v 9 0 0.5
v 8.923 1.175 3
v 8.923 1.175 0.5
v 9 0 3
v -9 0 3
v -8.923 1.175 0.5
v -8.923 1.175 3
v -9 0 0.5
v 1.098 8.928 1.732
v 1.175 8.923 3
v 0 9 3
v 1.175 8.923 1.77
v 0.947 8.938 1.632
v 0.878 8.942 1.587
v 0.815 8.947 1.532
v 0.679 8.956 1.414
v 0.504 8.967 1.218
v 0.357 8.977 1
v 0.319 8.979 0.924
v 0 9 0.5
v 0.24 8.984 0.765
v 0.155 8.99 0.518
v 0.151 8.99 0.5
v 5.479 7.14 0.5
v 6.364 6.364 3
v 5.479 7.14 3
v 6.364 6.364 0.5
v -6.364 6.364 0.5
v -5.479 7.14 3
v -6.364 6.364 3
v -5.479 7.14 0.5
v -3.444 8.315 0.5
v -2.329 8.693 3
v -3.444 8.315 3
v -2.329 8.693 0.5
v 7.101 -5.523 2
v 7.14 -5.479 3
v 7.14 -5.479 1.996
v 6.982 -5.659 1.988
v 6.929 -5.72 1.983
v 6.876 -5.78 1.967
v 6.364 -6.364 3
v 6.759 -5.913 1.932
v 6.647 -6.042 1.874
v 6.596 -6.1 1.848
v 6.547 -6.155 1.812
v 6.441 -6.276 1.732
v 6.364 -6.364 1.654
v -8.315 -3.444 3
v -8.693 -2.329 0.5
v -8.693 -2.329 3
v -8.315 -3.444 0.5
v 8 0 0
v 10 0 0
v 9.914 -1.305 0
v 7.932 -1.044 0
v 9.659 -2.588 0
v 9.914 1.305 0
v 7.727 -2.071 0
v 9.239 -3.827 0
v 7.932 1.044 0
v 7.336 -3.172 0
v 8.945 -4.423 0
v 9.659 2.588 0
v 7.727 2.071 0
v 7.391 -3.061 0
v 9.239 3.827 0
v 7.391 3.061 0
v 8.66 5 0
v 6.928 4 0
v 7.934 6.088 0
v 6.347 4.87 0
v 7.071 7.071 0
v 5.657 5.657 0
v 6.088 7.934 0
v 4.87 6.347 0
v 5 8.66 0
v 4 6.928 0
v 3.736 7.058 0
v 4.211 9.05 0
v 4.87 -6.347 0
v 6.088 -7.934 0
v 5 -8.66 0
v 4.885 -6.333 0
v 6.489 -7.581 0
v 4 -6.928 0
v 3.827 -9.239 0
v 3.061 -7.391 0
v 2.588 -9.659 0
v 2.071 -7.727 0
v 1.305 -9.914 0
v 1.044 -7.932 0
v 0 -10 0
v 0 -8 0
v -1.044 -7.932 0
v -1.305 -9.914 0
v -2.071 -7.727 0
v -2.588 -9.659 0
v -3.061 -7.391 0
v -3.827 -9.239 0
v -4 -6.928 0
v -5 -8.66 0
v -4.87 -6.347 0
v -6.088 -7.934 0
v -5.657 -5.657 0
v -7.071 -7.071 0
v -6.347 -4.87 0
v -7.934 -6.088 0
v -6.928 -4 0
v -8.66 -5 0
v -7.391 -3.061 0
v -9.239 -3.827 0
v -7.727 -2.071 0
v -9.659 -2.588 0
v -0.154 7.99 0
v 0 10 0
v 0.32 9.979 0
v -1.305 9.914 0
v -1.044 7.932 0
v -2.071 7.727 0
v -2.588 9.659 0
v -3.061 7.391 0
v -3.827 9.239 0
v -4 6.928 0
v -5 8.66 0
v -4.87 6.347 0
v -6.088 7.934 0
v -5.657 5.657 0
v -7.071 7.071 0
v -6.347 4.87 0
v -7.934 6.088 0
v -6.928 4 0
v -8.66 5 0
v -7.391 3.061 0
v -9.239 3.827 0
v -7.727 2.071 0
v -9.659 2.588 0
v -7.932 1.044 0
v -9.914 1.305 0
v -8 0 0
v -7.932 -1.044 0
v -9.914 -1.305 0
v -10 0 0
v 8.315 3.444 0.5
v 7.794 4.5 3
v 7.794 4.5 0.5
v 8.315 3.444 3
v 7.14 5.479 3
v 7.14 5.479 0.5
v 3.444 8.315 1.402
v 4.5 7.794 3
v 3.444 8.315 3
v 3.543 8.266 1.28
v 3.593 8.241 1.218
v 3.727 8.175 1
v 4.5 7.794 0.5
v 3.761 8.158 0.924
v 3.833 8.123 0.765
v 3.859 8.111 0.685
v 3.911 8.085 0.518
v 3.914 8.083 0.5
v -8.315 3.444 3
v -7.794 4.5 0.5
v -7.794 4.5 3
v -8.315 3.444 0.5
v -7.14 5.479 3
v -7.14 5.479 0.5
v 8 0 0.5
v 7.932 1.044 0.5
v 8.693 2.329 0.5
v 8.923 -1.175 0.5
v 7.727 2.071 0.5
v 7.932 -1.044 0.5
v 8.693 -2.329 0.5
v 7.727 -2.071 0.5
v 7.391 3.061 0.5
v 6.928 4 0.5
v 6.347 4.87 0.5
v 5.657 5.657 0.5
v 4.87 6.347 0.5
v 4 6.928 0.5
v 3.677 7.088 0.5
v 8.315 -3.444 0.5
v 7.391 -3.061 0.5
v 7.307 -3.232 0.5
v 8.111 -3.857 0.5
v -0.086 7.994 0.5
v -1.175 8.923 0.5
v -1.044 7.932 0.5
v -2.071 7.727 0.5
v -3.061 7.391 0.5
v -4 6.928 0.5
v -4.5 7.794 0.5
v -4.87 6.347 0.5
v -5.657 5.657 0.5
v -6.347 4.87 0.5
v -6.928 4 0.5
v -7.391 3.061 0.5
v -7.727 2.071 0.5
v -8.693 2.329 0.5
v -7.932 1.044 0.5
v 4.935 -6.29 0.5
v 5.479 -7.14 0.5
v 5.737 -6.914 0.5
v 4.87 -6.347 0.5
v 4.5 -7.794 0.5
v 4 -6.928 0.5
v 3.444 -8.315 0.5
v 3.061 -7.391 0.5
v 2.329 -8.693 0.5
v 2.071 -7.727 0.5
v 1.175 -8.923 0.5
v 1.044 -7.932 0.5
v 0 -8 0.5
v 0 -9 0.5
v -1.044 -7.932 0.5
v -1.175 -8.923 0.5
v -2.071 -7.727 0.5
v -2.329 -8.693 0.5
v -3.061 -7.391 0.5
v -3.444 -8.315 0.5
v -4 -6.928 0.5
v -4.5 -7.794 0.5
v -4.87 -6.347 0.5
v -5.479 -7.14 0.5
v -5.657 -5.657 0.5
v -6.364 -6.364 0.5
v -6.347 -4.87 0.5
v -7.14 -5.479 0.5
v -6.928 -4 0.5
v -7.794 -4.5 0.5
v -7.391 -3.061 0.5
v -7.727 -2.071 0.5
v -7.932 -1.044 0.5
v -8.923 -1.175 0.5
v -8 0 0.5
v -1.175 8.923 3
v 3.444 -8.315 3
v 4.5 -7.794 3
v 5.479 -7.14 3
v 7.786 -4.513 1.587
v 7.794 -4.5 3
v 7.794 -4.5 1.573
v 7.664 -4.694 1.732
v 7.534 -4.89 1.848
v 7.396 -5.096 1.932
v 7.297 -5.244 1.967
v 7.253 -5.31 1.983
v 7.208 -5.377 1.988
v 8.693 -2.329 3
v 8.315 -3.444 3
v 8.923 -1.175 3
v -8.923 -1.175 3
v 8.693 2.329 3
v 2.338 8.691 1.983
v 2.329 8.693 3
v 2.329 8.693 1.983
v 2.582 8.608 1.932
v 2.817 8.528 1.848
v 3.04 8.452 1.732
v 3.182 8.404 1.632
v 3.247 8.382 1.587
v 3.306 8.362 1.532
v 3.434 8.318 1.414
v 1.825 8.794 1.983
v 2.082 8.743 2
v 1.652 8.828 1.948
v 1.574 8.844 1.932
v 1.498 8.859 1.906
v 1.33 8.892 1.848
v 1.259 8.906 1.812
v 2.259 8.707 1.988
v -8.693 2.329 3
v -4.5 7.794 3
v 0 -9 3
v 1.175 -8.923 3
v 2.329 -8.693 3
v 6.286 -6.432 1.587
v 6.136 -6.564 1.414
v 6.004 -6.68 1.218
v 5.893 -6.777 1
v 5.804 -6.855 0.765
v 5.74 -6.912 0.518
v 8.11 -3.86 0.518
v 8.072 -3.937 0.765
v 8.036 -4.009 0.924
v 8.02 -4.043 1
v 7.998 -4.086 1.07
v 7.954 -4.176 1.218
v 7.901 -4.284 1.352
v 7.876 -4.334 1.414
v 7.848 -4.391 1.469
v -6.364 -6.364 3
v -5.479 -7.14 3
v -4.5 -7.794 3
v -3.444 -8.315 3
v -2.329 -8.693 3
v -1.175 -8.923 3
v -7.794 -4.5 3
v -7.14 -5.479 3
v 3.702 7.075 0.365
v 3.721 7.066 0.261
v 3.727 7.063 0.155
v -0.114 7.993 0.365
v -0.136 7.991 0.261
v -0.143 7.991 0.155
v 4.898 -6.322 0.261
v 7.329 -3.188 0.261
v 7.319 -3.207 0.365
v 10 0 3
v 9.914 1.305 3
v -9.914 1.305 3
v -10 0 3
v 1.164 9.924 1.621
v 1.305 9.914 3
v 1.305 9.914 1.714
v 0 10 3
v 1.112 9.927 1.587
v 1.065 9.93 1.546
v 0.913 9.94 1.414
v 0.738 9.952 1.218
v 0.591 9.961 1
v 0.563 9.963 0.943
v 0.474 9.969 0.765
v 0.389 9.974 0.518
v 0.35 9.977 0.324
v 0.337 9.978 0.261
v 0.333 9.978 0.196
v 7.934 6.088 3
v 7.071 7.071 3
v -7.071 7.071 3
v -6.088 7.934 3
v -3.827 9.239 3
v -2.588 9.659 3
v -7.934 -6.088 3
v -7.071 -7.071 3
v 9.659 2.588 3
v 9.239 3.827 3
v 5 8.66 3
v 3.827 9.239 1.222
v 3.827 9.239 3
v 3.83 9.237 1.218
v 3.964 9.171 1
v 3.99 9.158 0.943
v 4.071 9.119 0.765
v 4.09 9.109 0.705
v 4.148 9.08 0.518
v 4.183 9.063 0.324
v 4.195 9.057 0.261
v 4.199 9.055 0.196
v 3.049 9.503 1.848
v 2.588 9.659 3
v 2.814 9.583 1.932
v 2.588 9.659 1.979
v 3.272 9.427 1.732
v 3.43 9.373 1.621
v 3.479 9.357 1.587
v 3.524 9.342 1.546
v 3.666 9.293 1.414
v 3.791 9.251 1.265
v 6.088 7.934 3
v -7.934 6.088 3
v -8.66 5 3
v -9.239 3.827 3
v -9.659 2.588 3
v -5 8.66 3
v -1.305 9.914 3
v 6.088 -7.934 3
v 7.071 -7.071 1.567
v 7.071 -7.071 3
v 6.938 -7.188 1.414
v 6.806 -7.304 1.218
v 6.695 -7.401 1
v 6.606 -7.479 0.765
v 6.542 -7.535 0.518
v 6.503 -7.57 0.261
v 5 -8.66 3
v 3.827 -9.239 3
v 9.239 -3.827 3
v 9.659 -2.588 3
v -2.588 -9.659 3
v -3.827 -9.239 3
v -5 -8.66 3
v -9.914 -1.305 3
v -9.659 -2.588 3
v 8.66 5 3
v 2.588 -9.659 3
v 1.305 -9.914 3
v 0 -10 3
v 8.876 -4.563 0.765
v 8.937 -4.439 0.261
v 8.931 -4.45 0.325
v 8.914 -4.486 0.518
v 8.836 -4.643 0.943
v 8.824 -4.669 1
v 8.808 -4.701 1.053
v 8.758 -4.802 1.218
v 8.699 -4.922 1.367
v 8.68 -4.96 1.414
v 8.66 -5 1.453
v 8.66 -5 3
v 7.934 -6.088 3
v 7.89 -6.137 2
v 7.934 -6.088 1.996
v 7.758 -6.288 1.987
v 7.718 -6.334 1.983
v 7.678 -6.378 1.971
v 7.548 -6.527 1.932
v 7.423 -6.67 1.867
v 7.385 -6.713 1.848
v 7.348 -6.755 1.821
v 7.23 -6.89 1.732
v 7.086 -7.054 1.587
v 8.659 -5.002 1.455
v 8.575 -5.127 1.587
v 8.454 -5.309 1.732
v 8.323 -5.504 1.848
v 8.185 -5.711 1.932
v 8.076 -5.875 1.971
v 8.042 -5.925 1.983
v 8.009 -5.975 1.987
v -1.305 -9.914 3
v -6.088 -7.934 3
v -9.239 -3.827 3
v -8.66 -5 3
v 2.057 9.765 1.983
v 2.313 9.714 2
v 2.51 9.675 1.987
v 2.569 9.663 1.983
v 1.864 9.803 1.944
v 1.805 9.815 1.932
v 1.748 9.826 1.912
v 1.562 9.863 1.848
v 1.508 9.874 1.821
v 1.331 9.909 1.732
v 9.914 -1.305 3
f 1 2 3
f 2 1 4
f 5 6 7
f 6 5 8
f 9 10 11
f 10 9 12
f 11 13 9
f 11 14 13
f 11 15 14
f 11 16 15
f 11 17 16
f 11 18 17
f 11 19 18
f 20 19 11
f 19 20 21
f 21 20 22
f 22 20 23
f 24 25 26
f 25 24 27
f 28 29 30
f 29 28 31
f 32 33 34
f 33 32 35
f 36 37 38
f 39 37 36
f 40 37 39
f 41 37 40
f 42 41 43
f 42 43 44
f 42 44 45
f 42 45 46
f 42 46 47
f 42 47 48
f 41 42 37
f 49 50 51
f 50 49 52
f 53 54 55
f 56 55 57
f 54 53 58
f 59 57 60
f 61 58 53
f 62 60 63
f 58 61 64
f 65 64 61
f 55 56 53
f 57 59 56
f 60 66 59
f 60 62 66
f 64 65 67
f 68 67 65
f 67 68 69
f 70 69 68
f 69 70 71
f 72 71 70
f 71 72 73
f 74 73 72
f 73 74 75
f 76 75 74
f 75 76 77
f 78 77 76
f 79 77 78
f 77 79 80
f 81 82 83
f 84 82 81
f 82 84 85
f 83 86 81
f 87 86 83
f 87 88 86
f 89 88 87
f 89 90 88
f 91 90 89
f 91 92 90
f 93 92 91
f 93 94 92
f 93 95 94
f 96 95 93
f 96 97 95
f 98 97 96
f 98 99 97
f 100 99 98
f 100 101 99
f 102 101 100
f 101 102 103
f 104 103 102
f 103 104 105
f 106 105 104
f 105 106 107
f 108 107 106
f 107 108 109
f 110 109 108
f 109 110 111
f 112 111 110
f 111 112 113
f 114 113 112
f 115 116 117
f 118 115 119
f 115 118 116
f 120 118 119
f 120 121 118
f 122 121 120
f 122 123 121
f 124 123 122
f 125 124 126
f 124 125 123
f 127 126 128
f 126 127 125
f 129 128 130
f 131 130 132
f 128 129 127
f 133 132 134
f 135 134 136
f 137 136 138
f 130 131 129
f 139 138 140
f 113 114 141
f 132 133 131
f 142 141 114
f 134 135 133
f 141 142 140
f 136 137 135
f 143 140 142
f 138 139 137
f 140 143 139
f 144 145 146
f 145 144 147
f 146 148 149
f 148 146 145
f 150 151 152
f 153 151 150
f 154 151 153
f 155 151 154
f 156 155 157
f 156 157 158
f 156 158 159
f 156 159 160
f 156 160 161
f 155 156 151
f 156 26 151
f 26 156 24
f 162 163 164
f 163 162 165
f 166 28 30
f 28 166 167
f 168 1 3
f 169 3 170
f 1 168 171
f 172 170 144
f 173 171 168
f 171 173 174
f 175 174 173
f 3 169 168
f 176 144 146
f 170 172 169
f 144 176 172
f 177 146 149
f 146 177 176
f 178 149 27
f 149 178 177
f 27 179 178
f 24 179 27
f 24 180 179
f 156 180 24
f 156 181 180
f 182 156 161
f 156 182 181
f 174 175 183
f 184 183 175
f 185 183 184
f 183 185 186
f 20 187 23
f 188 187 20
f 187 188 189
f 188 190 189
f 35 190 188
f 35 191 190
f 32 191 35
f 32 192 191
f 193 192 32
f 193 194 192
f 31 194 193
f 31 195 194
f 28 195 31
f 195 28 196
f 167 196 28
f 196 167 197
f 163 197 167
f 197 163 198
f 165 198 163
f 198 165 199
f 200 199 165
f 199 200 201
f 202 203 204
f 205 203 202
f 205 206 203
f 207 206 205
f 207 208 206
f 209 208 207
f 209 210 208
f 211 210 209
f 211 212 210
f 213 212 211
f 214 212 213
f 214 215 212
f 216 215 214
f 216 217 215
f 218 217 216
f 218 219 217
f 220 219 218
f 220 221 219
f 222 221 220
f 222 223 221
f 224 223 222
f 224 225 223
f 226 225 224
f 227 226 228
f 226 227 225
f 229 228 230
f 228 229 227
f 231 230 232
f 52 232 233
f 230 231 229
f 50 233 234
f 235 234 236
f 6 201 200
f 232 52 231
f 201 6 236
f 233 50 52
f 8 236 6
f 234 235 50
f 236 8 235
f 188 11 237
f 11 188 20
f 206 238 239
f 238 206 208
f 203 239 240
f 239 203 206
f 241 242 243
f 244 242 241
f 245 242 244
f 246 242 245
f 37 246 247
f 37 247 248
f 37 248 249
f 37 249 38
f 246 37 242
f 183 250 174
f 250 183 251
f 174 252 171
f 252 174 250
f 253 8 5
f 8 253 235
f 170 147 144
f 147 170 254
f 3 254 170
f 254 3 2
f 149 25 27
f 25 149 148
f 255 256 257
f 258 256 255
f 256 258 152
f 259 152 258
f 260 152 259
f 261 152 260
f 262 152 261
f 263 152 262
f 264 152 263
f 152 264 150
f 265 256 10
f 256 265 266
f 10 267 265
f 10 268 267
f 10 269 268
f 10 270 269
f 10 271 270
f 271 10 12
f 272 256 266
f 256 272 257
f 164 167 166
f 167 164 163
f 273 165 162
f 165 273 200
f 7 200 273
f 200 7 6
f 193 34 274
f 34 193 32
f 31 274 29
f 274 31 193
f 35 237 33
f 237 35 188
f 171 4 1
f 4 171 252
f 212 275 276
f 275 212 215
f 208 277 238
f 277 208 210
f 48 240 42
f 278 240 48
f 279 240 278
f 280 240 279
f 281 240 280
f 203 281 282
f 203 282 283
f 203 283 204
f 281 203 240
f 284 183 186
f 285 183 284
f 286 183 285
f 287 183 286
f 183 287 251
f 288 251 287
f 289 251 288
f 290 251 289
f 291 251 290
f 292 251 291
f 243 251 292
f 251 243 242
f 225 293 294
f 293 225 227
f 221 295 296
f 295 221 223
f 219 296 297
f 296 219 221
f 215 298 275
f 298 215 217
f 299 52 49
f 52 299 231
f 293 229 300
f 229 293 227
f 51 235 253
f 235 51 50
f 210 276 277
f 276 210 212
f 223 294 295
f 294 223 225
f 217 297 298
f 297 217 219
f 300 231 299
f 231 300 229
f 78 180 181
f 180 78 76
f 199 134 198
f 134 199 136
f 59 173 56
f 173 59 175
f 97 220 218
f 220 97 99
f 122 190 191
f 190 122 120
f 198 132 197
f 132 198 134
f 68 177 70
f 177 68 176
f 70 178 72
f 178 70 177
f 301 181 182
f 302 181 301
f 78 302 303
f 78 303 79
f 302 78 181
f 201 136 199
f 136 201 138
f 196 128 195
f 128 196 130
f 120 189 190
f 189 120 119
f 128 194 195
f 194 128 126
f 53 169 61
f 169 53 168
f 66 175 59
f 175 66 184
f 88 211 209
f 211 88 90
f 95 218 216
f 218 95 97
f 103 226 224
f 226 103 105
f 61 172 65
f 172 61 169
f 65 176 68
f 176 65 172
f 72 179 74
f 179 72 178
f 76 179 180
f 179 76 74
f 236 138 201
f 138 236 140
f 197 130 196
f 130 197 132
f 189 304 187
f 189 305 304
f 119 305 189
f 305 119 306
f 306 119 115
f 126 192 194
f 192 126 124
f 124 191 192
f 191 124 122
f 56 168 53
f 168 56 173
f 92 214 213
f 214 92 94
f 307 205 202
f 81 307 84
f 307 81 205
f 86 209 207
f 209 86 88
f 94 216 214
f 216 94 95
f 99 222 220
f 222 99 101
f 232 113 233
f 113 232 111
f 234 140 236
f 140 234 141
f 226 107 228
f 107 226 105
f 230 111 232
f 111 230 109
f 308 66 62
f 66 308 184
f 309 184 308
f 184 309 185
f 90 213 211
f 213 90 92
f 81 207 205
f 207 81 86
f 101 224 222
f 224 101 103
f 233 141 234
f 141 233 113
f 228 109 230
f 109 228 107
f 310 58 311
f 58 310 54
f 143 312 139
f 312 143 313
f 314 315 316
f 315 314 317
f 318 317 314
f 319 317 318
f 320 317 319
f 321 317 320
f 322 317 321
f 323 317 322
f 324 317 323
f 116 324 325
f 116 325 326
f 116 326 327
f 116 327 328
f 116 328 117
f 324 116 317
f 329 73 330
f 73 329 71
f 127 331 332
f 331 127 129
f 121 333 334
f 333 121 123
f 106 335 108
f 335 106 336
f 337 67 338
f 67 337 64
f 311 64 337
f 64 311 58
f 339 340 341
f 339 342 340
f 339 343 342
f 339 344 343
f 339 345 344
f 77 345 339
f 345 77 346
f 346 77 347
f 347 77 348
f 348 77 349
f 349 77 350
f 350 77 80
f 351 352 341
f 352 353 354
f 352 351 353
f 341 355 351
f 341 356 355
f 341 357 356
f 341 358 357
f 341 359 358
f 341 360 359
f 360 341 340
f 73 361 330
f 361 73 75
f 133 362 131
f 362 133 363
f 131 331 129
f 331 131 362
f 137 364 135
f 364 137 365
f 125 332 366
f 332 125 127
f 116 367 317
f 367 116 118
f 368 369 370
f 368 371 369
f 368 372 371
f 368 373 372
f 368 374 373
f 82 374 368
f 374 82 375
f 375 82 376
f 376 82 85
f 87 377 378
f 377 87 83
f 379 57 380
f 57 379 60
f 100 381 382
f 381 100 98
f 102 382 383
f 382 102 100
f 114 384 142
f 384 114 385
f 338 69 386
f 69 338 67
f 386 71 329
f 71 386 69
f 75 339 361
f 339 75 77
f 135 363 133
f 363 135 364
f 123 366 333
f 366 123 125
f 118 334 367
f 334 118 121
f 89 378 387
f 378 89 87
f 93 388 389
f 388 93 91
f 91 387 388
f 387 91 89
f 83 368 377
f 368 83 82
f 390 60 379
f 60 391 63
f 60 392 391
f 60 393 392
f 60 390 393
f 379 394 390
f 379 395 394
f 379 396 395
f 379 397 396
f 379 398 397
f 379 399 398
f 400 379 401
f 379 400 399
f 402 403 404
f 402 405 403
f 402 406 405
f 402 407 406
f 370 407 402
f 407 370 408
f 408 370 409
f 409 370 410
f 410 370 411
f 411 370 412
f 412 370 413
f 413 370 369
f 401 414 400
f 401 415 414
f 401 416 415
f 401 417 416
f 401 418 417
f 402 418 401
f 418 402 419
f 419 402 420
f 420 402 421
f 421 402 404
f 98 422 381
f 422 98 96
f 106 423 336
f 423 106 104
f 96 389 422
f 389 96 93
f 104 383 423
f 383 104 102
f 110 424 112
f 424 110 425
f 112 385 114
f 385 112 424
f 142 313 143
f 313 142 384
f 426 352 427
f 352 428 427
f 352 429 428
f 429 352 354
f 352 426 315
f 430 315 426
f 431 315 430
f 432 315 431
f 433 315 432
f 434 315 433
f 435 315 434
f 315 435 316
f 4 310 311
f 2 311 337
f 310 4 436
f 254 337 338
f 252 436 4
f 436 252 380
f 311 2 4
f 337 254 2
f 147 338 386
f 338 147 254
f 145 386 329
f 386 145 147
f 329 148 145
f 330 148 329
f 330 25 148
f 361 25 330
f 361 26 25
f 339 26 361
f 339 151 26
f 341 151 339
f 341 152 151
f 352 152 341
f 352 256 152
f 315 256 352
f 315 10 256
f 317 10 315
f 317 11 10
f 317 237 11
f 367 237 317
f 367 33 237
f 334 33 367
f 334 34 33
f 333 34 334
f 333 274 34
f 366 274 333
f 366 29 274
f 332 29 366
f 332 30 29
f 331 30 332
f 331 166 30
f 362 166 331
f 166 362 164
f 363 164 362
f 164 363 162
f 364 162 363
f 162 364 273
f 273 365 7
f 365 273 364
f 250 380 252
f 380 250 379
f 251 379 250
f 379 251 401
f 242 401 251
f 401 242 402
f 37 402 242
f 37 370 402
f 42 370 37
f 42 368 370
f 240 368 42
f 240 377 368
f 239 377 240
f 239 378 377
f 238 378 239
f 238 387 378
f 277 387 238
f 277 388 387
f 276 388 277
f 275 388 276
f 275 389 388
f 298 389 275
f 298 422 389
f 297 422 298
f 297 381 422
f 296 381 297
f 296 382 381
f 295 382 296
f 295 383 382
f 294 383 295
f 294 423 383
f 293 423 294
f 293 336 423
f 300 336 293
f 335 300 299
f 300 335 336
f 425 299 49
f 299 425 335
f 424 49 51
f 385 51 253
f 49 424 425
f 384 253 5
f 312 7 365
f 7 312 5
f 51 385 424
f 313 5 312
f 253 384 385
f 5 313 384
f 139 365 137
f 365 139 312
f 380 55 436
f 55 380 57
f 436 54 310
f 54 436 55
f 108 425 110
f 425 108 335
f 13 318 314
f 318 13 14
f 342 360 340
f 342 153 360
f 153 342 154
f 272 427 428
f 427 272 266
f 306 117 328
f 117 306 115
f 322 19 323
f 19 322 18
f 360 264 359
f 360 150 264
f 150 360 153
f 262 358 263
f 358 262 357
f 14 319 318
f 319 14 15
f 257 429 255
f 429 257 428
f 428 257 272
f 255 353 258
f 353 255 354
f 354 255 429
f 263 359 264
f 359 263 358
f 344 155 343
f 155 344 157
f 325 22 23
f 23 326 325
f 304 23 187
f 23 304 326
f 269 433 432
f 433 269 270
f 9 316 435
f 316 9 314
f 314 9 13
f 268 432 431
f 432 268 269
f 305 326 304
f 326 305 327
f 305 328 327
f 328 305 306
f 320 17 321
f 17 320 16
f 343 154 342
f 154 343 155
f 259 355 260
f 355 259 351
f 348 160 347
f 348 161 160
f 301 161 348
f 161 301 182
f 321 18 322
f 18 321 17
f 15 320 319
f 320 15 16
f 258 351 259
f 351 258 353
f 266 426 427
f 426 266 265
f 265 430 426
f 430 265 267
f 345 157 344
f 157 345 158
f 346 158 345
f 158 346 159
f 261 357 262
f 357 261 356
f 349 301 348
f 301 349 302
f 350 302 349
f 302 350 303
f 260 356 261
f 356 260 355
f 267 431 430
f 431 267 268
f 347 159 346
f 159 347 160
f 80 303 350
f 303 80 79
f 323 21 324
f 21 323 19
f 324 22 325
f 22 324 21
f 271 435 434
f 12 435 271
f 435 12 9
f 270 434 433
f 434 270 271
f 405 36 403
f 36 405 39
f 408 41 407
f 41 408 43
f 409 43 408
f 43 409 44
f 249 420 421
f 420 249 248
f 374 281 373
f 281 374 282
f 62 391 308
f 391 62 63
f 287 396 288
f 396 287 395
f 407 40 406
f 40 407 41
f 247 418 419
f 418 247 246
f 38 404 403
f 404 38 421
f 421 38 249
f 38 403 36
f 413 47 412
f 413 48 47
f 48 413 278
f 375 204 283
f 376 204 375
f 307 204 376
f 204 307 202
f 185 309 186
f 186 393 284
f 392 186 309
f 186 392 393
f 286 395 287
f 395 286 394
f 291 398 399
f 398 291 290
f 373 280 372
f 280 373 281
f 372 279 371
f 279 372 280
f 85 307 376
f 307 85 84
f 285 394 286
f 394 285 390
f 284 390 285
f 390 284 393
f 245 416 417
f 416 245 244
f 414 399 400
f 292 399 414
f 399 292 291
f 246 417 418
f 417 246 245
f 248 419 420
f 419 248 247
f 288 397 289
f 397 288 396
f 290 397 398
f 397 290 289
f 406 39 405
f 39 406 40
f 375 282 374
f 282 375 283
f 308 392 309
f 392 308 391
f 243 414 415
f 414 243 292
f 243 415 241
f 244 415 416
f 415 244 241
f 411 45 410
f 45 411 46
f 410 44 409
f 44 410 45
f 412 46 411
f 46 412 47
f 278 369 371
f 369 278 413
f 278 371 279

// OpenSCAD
// file: ../build_environments.scad
// build_environments.scad: modules to build level sections
//

module pool(diameter=10.0, wall_height=2.0, step_width=3.0, connections=[])
{
    difference() {
        union() {
        difference() {
            cylinder(h=0.5,r1=diameter+step_width,r2=diameter+step_width,$fn=48);
            translate([0,0,-0.1])
                cylinder(h=0.7,r1=diameter,r2=diameter,$fn=48);
        }
        difference() {
            cylinder(h=wall_height,r1=diameter+step_width+1.0,r2=diameter+step_width+1.0,$fn=48);
            translate([0,0,-0.1])
                cylinder(h=wall_height+0.2,r1=diameter+step_width,r2=diameter+step_width,$fn=48);
        }
        }
    
        for (c = connections)
        {
            rotate([0,90,0]) {
                angle = atan2(c[1],c[0]);
                rotate([-angle,0,0]) {
                    cylinder(h=diameter+5.0,r1=c[2],r2=c[2],$fn=48);
                }
            }
        }
    }
}

module straight(length=10.0, width=2.0, dy1=0.0, dy2=0.0, dz=0.0)
{
    dims = [0, 0, 0, 0, 0, (dz/length)];
    matrix = [
        [ 1, dims[0], dims[1], 0 ],
        [ dims[2], 1, dims[4], 0 ],
        [ dims[5], dims[3], 1, 0 ],
        [ 0, 0, 0, 1 ]
    ];
    multmatrix(matrix)
    difference() {
        translate([dy1,0,0])
        union() {
            rotate([0,90,0]) {
                difference() {
                    cylinder(h=(length-dy1-dy2),r1=width+1.0,r2=width+1.0,$fn=24);
                    translate([0,0,-0.1])
                        cylinder(h=(length-dy1-dy2+0.2),r1=width,r2=width,$fn=24);
                }
                difference() {
                    cylinder(h=1.0,r1=width+2.0,r2=width+2.0,$fn=24);
                    translate([0,0,-0.1])
                        cylinder(h=1.2,r1=width,r2=width,$fn=24);
                }
                translate([0,0,(length-dy1-dy2)-1.0]) {
                    difference() {
                        cylinder(h=1.0,r1=width+2.0,r2=width+2.0,$fn=24);
                        translate([0,0,-0.1])
                            cylinder(h=1.2,r1=width,r2=width,$fn=24);
                    }
                }
            }
        }
        translate([0,0,-(2*width+4.0)/2])
            cube([3*length,3*length,2*width+4.0],center=true);
    }
}

module curve(p0=[0,0], center=[0,0], dir=1, angle=0.0, width=2.0)
{
    radius = sqrt((p0[0]-center[0])*(p0[0]-center[0]) + (p0[1]-center[1])*(p0[1]-center[1]));
    if (dir == 0) {
        difference() {
            rotate([0,0,-90])
            difference() {
                rotate_extrude(angle = angle, convexity = 10, $fn=32)
                    translate([radius, 0, 0])
                        circle(r = width+1.0,$fn=24);
                rotate([0,0,-1.0])
                    rotate_extrude(angle = angle+2.0, convexity = 10, $fn=32)
                        translate([radius, 0, 0])
                            circle(r = width,$fn=24);
            }
            translate([0,0,-(2*width+4.0)/2])
                cube([5*radius,5*radius,2*width+4.0],center=true);
        }
    }
    else {
        difference() {
            rotate([0,0,90])
            difference() {
                rotate_extrude(angle = -angle, convexity = 10, $fn=32)
                    translate([radius, 0, 0])
                        circle(r = width+1.0,$fn=24);
                rotate([0,0,1.0])
                    rotate_extrude(angle = -angle-2.0, convexity = 10, $fn=32)
                        translate([radius, 0, 0])
                            circle(r = width,$fn=24);
            }
            translate([0,0,-(2*width+4.0)/2])
                cube([5*radius,5*radius,2*width+4.0],center=true);
        }
    }

}

// test pool
//pool(diameter=12.0000, wall_height=3.0000, step_width=3.0000, connections=[[0.0000,-26.0000,2.0000], [23.6074,0.0000,2.0000]]);

// test straight, slope
//straight(length=26.0000, width=2.0000, dy1=11.8322, dy2=6.7082, dz=0.0000);
//straight(length=29.1549, width=12.0000, dy1=0.0000, dy2=0.0000, dz=-15.0000);

// test curve
//curve(p0=[23.6074, 0.0000], center=[23.6074, 5.0000], dir=0, angle=60.1011, width=2.0000);
//curve(p0=[33.6426, 12.4219], center=[37.9771, 9.9295], dir=1, angle=120.4627, width=2.0000);
// main file
use <../build_environments.scad>;
pool(diameter=8.0000, wall_height=3.0000, step_width=1.0000, connections=[[5.0000,21.0000,2.0000], [18.0000,-14.0000,2.0000]]);
